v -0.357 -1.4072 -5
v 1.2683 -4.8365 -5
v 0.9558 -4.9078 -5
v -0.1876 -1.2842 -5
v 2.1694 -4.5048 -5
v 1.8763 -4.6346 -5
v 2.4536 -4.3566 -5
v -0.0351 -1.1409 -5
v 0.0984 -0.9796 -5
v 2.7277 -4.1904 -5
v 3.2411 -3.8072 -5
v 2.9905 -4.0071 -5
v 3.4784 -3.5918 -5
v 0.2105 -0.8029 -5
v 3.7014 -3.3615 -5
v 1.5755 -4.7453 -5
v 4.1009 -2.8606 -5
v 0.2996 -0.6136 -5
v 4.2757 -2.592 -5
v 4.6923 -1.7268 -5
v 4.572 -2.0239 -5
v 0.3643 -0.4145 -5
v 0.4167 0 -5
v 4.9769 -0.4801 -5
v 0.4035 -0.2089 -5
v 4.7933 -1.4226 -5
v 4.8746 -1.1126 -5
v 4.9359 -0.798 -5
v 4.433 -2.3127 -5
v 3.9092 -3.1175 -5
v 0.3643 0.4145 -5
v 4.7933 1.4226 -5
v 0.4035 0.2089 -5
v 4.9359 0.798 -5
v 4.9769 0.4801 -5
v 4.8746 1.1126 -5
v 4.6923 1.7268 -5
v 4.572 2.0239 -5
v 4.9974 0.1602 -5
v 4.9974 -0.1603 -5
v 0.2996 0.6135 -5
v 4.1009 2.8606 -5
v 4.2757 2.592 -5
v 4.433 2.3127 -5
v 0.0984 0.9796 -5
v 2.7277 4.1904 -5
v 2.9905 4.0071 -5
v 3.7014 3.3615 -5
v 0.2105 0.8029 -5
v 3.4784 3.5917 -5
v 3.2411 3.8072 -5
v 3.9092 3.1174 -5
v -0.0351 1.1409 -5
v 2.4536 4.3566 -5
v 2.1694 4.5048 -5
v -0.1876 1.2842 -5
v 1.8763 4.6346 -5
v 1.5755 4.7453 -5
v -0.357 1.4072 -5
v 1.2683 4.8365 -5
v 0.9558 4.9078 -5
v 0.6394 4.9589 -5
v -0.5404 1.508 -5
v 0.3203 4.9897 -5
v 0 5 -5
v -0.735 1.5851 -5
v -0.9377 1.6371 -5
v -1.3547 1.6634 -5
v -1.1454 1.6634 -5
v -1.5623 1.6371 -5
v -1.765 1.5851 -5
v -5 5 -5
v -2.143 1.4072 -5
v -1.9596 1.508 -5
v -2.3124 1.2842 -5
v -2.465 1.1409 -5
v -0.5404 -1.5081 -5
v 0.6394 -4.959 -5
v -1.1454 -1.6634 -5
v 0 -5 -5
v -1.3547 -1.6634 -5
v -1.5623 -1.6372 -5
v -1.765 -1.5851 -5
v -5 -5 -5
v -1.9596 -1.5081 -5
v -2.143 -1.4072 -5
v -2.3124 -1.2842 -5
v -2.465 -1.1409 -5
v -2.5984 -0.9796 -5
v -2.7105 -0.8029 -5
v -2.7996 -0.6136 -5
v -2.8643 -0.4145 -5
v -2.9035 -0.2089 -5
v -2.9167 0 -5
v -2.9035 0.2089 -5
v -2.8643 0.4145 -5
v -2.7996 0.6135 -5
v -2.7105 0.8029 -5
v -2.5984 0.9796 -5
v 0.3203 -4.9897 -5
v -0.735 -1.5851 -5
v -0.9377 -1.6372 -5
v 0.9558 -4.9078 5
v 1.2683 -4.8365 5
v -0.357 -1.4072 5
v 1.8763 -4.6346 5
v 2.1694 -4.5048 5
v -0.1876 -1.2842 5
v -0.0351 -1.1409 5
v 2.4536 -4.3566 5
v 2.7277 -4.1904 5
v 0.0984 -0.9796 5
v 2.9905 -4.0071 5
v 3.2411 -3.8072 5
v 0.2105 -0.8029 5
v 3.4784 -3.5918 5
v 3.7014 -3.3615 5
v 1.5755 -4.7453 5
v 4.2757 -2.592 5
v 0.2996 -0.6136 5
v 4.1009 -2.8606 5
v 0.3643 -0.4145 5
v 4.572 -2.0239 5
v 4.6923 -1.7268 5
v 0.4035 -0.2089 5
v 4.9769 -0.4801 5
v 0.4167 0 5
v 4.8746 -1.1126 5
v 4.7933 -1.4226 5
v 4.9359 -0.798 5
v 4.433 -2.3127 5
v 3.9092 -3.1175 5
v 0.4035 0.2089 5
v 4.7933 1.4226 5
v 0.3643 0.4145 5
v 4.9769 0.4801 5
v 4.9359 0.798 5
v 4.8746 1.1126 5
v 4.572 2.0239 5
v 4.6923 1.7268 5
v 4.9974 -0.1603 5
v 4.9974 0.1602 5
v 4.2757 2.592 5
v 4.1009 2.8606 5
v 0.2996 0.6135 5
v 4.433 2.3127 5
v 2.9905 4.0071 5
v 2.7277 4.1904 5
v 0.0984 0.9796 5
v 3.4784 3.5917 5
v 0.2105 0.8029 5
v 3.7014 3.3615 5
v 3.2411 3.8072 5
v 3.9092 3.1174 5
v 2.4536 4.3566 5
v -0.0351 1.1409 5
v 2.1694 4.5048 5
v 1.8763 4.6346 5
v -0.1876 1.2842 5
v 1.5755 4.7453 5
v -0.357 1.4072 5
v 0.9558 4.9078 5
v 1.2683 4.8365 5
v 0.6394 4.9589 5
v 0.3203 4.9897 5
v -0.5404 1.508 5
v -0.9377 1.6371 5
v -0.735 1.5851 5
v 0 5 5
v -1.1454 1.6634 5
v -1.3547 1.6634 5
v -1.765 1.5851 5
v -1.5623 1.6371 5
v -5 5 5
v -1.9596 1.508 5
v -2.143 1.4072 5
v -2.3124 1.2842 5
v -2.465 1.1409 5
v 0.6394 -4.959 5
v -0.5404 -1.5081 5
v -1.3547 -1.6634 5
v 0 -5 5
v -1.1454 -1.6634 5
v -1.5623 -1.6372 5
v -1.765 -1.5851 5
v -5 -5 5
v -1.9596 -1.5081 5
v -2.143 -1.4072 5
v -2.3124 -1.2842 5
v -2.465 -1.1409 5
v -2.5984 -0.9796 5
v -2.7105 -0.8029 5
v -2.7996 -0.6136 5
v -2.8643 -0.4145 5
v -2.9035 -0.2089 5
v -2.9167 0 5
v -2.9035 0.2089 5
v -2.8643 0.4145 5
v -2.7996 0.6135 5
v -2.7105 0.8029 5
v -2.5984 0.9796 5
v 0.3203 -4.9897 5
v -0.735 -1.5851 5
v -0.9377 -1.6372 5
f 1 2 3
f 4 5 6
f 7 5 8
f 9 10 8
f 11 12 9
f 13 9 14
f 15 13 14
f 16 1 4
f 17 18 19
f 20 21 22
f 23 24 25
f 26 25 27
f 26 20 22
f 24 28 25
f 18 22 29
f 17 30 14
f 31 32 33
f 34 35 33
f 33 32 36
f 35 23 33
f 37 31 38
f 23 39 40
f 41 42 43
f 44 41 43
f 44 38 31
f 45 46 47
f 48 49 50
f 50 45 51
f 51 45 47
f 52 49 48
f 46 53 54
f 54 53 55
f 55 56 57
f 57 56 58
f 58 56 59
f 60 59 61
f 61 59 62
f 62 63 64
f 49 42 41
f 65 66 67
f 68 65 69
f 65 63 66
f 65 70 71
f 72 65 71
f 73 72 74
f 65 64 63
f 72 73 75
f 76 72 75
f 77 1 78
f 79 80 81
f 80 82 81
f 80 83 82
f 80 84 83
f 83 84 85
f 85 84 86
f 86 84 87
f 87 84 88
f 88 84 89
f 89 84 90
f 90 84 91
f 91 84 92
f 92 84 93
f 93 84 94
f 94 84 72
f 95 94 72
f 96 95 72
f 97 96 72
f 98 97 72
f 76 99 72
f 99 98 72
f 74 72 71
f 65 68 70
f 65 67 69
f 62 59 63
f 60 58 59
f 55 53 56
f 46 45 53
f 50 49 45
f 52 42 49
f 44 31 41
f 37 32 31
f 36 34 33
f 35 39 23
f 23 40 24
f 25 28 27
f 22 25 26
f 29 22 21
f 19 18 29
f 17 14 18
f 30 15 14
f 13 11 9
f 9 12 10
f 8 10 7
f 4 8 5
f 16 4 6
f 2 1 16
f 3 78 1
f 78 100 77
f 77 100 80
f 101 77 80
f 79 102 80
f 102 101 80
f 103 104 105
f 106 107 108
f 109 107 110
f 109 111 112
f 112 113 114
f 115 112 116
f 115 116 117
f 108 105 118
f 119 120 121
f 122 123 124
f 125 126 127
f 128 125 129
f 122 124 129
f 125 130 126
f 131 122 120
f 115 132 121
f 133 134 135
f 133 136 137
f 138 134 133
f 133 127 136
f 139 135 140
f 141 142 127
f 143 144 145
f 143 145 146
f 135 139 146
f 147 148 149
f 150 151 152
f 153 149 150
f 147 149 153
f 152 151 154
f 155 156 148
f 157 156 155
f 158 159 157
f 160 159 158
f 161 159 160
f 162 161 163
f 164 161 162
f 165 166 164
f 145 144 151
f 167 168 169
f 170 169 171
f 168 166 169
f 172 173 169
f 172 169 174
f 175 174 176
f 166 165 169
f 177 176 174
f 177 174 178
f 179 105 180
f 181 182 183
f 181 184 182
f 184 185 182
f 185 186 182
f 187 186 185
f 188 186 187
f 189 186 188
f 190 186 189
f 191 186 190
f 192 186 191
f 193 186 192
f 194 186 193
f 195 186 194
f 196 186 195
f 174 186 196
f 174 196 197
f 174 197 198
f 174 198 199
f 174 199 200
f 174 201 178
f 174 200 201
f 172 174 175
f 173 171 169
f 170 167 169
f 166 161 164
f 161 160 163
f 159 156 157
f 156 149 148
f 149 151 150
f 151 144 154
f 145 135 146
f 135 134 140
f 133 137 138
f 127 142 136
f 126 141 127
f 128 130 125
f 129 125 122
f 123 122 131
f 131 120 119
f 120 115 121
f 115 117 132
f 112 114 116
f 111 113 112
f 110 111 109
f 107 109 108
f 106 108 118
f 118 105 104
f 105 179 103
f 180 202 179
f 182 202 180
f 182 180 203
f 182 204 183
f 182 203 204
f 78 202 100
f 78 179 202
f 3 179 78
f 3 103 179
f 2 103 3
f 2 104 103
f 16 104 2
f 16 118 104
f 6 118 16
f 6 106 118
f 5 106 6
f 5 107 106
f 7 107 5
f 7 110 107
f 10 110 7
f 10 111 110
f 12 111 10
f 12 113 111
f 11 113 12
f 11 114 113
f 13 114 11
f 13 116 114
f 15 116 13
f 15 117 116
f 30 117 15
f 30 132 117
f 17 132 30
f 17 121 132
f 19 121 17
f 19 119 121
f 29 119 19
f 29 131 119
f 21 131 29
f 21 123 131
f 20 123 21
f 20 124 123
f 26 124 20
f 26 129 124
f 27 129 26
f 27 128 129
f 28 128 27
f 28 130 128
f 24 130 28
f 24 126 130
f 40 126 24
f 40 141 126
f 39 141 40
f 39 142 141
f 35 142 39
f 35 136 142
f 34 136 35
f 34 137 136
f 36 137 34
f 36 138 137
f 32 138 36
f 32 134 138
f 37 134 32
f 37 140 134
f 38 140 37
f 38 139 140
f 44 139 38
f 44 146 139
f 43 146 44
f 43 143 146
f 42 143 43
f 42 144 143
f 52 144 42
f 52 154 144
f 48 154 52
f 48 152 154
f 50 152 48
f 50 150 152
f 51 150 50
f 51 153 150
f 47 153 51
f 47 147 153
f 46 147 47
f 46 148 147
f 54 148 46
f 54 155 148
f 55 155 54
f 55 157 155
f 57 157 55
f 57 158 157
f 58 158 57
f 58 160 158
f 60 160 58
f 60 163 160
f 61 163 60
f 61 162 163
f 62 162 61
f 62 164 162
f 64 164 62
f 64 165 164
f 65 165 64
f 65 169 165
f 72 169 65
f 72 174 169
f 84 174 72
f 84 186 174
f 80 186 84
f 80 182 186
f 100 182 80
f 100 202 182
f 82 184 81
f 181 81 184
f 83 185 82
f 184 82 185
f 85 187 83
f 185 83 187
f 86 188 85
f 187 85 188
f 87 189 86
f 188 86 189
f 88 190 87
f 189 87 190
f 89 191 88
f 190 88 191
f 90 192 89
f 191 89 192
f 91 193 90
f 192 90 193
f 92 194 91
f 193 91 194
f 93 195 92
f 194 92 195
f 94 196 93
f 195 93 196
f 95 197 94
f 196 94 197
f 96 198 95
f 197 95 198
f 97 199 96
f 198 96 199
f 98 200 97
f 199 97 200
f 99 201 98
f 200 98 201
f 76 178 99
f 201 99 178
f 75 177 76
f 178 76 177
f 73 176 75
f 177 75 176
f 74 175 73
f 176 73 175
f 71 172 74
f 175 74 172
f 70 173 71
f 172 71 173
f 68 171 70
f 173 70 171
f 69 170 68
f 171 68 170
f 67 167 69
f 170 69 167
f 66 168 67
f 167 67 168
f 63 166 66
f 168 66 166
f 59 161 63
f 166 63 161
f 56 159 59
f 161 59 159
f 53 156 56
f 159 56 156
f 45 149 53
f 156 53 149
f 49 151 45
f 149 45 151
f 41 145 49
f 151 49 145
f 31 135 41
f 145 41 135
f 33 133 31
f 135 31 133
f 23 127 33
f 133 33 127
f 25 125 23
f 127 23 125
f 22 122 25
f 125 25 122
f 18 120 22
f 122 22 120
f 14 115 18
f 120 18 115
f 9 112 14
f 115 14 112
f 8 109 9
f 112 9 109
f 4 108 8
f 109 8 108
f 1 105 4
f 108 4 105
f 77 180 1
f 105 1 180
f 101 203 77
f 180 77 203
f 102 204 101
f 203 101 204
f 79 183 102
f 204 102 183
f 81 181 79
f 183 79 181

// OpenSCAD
// Generated by SolidPython 1.1.3 on 2025-02-20 01:45:13
$fn=50;


translate(v = [-5.0000000000, -5.0000000000, -5.0000000000]) {
	linear_extrude(height = 10) {
		difference() {
			polygon(points = [[5.0000000000, 10.0000000000], [5.3203510999, 9.9897269638], [5.6393858084, 9.9589500691], [5.9557931435, 9.9077957850], [6.2682729195, 9.8364743152], [6.5755410901, 9.7452787351], [6.8763350244, 9.6345837867], [7.1694186956, 9.5048443395], [7.4535877600, 9.3565935206], [7.7276745061, 9.1904405245], [7.9905526525, 9.0070681093], [8.2411419765, 8.8072297918], [8.4784127530, 8.5917467505], [8.7013899854, 8.3615044513], [8.9091574123, 8.1174490093], [9.1008612730, 7.8605833006], [9.2757138150, 7.5919628416], [9.4329965319, 7.3126914512], [9.5720631151, 7.0239167156], [9.6923421102, 6.7268252721], [9.7933392652, 6.4226379332], [9.8746395609, 6.1126046698], [9.9359089171, 5.7979994752], [9.9768955647, 5.4801151295], [9.9974310810, 5.1602578879], [9.9974310810, 4.8397421121], [9.9768955647, 4.5198848705], [9.9359089171, 4.2020005248], [9.8746395609, 3.8873953302], [9.7933392652, 3.5773620668], [9.6923421102, 3.2731747279], [9.5720631151, 2.9760832844], [9.4329965319, 2.6873085488], [9.2757138150, 2.4080371584], [9.1008612730, 2.1394166994], [8.9091574123, 1.8825509907], [8.7013899854, 1.6384955487], [8.4784127530, 1.4082532495], [8.2411419765, 1.1927702082], [7.9905526525, 0.9929318907], [7.7276745061, 0.8095594755], [7.4535877600, 0.6434064794], [7.1694186956, 0.4951556605], [6.8763350244, 0.3654162133], [6.5755410901, 0.2547212649], [6.2682729195, 0.1635256848], [5.9557931435, 0.0922042150], [5.6393858084, 0.0410499309], [5.3203510999, 0.0102730362], [5.0000000000, 0.0000000000], [0, 0], [0, 10]]);
			translate(v = [3.7500000000, 5.0000000000]) {
				circle(r = 1.6666666667);
			}
		}
	}
}
/***********************************************
*********      SolidPython code:      **********
************************************************
 
from solid import *
from solid.utils import *

import math
import matplotlib.pyplot as plt
import subprocess
import os

class Hole:
    def __init__(self, x, y, radius):
        """
        Hole defined by:
        :param x: x dimension for center point of the circle as a ratio of letter height
        :param y: y dimension for center point of the circle as a ratio of letter height
        :param radius: radius of circle as a ratio of letter height
        """
        self.x = x
        self.y = y
        self.radius = radius

class Letter3D:
    def __init__(self, name, outer_shape_points, height, holes=[]):
        """
        3D Letter defined by:
        :param name: name of letter
        :param outer_shape_points: points defining the outer shape of the letter
        :param heigh: size of cube that letter fits inside
        :param holes: list of Holes
        """
        self.name = name
        self.outer_shape_points = outer_shape_points
        self.holes = holes
        self.height = height

    def render(self):
        shape = polygon(points=self.outer_shape_points)

        if self.holes:
            for hole in self.holes:
                circle_hole = circle(r=hole.radius*self.height)
                positioned_hole = translate([hole.x*self.height, hole.y*self.height])(circle_hole)
                shape = difference()(shape, positioned_hole)
        
        shape_3d = linear_extrude(height=self.height)(shape)
        shape_3d = translate([-self.height/2, -self.height/2, -self.height/2])(shape_3d)
        
        scad_render_to_file(shape_3d, f"output/{self.name}.scad", file_header='$fn=50;')
        subprocess.run(["C:\\Program Files\\OpenSCAD\\openscad.exe", "-o", f"output\\{self.name}.stl", f"output\\{self.name}.scad"])
                

def arc_points(radius, start_angle, end_angle, center=[0,0], num_points=50):
    angles = [start_angle + i * (end_angle - start_angle) / (num_points - 1)
              for i in range(num_points)]
    points = [
        (center[0] + radius * math.cos(math.radians(angle)),
         center[1] + radius * math.sin(math.radians(angle)))
        for angle in angles
    ]
    return points

def letter_A(h):
    shape_points = [(0,0), (h/2, h), (h, 0), (5/6*h, 0), (2/3*h, 1/3*h), (1/3*h, 1/3*h), (h/6, 0)]
    holes = [Hole(1/2, 7/12, 1/6)]
    A = Letter3D("A", shape_points, h, holes)
    return A.render()


def letter_B(h):
    top_arc_points = arc_points(h/4, 90, -90, center=[3/4*h, 3/4*h])
    bottom_arc_points = arc_points(h/4, 90, -90, center=[3/4*h, h/4])
    other_points = [(0,0),(0,h)]

    shape_points = top_arc_points + bottom_arc_points + other_points
    holes = [Hole(1/2, 3/4, 1/6), Hole(1/2, 1/4, 1/6)]
    B = Letter3D("B", shape_points, h, holes)
    return B.render()

def letter_C(h):
    outer_arc_points = arc_points(h/2, 30, 330)
    inner_arc_points = arc_points(h/4, 30, 330)[::-1]
    shape_points = outer_arc_points + inner_arc_points
    C = Letter3D("C", shape_points, h)
    return C.render()


def letter_D(h):
    outer_arc_points = arc_points(h/2, 90, -90, center= [h/2, h/2])
    shape_points = outer_arc_points + [(0,0), (0, h)]
    holes = [Hole(3/8, 1/2, 1/6)]
    D = Letter3D("D", shape_points, h, holes)
    return D.render()

if __name__ == "__main__":
    os.makedirs("output", exist_ok=True)

    # Just the letter B
    letter_D(10)
    # scad_render_to_file(b, "customB.scad", file_header='$fn=50;')
    # subprocess.run(["C:\\Program Files\\OpenSCAD\\openscad.exe", "-o", "customB.stl", "customB.scad"])

    # Intersection of A and A
    # a1 = translate([0,0,0])(letter_A(10))
    # a2 = translate([0,0,0])(rotate(a=90, v=[0,1,0])(letter_B(10)))
    # combined = intersection()(a1, a2)
    # scad_render_to_file(combined, "AB.scad")
    # subprocess.run(["C:\\Program Files\\OpenSCAD\\openscad.exe", "-o", "AB.stl", "AB.scad"])
 
 
************************************************/
